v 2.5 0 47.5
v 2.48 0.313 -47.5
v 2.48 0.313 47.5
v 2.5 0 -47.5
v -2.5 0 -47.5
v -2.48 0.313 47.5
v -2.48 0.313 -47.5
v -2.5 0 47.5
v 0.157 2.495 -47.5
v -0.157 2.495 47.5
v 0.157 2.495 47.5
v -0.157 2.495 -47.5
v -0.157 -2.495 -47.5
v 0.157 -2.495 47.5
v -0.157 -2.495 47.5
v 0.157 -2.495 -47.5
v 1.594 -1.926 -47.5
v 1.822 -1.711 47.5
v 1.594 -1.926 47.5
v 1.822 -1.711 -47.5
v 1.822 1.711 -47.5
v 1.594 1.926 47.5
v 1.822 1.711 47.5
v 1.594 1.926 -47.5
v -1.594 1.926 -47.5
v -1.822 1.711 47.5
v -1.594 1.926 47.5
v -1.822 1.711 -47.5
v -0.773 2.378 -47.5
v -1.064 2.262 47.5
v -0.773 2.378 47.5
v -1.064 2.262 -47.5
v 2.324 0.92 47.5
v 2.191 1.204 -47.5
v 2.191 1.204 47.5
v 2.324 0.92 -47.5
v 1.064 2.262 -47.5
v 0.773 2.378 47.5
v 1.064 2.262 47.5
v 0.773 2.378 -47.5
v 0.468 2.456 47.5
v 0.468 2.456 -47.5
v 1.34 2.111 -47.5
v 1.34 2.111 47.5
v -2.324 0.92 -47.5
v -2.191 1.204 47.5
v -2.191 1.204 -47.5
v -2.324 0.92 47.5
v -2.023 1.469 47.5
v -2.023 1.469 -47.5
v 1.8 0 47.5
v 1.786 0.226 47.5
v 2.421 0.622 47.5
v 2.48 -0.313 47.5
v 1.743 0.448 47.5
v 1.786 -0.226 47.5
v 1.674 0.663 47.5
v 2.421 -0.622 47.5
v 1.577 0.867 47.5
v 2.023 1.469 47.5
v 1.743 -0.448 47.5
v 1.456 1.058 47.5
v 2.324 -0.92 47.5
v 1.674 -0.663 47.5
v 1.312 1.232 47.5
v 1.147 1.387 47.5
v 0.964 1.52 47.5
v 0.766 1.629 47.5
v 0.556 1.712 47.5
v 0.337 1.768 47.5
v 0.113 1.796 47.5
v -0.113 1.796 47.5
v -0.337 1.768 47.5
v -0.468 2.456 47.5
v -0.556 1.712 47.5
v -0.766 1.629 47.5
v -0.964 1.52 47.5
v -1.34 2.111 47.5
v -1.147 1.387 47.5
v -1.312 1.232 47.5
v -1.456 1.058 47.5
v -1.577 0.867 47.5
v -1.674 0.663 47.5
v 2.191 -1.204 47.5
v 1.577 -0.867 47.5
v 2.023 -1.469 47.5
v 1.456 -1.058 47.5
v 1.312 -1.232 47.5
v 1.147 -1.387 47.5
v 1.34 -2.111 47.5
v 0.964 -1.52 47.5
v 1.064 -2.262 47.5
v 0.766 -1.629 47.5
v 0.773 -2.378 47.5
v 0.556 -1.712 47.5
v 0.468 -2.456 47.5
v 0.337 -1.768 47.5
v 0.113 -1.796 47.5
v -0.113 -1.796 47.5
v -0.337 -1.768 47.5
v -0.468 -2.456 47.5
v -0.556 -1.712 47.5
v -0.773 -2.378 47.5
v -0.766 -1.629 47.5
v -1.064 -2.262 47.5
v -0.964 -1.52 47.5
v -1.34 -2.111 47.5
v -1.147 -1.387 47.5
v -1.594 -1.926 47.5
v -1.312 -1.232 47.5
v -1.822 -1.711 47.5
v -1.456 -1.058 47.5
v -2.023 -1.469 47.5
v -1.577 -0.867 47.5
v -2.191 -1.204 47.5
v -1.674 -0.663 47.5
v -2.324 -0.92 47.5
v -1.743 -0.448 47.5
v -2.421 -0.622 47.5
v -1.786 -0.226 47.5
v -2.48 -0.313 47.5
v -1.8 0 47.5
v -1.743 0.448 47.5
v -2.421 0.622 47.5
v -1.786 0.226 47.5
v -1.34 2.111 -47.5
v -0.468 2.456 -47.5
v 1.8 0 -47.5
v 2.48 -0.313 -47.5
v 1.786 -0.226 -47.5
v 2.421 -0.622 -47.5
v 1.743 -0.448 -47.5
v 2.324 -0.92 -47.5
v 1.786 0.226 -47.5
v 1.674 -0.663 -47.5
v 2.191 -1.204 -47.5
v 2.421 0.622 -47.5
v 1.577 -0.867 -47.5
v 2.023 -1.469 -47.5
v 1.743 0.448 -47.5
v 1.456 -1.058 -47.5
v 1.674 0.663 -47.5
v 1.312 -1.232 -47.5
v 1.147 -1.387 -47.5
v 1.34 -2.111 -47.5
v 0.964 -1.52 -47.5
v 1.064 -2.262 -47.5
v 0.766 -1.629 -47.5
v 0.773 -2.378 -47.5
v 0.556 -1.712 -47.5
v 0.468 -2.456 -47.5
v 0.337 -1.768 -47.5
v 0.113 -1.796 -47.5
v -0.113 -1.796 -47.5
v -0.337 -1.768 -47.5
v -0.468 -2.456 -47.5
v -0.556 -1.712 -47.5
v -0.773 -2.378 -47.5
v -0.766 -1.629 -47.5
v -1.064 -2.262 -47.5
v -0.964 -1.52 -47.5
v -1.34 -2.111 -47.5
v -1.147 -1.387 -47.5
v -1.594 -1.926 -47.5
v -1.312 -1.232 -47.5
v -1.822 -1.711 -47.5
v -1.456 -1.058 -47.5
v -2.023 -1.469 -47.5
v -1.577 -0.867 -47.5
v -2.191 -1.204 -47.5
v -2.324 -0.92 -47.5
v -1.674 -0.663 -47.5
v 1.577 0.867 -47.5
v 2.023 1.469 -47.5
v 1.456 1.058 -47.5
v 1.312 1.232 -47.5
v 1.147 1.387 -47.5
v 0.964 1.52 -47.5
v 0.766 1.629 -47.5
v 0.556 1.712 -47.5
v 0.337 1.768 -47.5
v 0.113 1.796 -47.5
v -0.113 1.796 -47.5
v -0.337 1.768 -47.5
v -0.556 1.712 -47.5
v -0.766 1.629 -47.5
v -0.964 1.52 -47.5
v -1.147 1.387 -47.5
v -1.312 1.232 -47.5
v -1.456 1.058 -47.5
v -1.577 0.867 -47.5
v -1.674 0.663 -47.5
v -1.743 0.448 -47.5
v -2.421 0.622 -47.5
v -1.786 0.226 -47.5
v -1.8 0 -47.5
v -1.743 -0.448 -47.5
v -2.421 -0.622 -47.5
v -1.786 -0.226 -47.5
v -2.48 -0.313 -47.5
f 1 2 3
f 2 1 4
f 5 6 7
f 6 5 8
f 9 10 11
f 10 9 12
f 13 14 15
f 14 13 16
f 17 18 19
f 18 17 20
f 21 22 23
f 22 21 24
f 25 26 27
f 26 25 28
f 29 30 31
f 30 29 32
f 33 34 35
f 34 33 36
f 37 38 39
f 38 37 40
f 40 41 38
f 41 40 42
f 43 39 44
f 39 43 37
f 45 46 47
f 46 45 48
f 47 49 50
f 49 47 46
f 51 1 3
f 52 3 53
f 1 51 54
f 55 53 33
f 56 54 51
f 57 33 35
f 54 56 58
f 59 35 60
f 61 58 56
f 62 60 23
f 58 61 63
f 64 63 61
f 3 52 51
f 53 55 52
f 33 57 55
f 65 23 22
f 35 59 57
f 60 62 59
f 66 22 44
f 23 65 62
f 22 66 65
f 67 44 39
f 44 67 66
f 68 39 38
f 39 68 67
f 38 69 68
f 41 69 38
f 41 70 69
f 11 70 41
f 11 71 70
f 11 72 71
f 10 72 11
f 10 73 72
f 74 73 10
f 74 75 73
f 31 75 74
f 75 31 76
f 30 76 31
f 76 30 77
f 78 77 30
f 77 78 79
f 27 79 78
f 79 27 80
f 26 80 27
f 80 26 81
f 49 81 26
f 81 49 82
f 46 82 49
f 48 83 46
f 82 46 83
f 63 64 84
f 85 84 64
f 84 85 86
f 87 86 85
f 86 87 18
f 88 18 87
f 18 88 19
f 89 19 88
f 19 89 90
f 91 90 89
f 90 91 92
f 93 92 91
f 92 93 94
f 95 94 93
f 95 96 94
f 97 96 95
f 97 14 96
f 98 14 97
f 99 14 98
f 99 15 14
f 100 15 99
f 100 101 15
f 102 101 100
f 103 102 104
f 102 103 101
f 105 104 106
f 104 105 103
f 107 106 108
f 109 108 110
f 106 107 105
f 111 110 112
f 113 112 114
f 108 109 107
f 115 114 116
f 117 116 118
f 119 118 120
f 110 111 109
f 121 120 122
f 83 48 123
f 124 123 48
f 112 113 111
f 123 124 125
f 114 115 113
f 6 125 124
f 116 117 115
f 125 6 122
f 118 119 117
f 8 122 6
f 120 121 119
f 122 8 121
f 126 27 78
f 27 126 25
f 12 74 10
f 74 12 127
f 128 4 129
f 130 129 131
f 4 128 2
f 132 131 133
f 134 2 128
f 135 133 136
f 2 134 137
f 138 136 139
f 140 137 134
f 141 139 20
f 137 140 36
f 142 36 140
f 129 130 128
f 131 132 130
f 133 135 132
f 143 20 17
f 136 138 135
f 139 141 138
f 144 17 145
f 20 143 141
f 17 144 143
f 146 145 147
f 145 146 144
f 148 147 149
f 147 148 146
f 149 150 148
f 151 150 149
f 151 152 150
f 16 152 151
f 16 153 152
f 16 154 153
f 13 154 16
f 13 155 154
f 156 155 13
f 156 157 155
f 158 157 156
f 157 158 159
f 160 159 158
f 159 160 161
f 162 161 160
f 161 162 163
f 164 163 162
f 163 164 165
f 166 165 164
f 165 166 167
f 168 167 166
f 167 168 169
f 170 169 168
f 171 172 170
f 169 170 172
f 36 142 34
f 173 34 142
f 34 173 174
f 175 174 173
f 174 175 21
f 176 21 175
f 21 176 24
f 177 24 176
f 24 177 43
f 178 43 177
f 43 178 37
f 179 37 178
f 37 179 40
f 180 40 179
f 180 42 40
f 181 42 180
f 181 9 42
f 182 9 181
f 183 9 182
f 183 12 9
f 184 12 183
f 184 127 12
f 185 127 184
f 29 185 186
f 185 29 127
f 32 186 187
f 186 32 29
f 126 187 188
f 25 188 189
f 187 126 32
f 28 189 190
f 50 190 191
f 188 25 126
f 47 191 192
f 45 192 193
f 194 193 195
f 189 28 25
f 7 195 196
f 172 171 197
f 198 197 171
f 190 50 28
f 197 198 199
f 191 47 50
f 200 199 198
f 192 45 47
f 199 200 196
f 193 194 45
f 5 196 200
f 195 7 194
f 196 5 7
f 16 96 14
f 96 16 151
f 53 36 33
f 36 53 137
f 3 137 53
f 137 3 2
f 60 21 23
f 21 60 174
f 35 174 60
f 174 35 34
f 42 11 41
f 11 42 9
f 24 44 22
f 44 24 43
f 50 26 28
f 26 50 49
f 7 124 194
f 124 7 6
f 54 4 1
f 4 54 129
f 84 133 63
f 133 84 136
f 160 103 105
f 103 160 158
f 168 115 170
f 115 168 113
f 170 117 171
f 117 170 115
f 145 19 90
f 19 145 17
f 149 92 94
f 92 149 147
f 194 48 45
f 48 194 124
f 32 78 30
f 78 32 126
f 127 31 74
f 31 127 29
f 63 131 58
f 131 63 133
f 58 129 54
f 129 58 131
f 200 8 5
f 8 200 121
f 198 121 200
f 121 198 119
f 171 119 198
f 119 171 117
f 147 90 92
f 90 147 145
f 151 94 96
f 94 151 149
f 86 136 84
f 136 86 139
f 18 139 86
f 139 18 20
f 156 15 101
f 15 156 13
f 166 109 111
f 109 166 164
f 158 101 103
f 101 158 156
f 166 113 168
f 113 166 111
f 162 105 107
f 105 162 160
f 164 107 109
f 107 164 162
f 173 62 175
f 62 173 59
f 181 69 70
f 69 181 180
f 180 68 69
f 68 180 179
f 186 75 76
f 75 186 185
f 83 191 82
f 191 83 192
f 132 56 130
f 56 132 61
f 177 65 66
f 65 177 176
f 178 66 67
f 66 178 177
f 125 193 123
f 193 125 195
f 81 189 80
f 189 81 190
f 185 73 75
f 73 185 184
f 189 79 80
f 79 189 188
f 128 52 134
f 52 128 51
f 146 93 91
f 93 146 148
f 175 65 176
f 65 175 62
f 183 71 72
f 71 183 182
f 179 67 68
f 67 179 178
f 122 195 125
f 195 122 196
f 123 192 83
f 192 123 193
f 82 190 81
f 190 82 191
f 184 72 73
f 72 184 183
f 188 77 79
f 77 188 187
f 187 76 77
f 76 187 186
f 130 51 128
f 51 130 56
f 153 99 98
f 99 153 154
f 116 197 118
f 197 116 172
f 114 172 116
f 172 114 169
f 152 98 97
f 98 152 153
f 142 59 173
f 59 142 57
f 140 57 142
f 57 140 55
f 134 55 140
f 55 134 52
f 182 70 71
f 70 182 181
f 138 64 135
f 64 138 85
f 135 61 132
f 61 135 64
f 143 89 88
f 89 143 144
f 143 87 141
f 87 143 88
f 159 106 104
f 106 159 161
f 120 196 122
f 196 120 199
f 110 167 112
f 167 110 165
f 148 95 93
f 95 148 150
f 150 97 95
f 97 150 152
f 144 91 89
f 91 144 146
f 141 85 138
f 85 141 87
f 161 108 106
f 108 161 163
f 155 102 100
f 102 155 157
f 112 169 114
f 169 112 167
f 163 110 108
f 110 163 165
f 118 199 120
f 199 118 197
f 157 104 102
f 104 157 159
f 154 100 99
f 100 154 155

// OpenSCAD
$fn = 50;


difference() {
	union() {
		translate(v = [0, 0, -47.5000000000]) {
			cylinder(h = 95, r = 2.5000000000);
		}
	}
	union() {
		translate(v = [0, 0, -100.0000000000]) {
			cylinder(h = 200, r = 1.8000000000);
		}
	}
}
